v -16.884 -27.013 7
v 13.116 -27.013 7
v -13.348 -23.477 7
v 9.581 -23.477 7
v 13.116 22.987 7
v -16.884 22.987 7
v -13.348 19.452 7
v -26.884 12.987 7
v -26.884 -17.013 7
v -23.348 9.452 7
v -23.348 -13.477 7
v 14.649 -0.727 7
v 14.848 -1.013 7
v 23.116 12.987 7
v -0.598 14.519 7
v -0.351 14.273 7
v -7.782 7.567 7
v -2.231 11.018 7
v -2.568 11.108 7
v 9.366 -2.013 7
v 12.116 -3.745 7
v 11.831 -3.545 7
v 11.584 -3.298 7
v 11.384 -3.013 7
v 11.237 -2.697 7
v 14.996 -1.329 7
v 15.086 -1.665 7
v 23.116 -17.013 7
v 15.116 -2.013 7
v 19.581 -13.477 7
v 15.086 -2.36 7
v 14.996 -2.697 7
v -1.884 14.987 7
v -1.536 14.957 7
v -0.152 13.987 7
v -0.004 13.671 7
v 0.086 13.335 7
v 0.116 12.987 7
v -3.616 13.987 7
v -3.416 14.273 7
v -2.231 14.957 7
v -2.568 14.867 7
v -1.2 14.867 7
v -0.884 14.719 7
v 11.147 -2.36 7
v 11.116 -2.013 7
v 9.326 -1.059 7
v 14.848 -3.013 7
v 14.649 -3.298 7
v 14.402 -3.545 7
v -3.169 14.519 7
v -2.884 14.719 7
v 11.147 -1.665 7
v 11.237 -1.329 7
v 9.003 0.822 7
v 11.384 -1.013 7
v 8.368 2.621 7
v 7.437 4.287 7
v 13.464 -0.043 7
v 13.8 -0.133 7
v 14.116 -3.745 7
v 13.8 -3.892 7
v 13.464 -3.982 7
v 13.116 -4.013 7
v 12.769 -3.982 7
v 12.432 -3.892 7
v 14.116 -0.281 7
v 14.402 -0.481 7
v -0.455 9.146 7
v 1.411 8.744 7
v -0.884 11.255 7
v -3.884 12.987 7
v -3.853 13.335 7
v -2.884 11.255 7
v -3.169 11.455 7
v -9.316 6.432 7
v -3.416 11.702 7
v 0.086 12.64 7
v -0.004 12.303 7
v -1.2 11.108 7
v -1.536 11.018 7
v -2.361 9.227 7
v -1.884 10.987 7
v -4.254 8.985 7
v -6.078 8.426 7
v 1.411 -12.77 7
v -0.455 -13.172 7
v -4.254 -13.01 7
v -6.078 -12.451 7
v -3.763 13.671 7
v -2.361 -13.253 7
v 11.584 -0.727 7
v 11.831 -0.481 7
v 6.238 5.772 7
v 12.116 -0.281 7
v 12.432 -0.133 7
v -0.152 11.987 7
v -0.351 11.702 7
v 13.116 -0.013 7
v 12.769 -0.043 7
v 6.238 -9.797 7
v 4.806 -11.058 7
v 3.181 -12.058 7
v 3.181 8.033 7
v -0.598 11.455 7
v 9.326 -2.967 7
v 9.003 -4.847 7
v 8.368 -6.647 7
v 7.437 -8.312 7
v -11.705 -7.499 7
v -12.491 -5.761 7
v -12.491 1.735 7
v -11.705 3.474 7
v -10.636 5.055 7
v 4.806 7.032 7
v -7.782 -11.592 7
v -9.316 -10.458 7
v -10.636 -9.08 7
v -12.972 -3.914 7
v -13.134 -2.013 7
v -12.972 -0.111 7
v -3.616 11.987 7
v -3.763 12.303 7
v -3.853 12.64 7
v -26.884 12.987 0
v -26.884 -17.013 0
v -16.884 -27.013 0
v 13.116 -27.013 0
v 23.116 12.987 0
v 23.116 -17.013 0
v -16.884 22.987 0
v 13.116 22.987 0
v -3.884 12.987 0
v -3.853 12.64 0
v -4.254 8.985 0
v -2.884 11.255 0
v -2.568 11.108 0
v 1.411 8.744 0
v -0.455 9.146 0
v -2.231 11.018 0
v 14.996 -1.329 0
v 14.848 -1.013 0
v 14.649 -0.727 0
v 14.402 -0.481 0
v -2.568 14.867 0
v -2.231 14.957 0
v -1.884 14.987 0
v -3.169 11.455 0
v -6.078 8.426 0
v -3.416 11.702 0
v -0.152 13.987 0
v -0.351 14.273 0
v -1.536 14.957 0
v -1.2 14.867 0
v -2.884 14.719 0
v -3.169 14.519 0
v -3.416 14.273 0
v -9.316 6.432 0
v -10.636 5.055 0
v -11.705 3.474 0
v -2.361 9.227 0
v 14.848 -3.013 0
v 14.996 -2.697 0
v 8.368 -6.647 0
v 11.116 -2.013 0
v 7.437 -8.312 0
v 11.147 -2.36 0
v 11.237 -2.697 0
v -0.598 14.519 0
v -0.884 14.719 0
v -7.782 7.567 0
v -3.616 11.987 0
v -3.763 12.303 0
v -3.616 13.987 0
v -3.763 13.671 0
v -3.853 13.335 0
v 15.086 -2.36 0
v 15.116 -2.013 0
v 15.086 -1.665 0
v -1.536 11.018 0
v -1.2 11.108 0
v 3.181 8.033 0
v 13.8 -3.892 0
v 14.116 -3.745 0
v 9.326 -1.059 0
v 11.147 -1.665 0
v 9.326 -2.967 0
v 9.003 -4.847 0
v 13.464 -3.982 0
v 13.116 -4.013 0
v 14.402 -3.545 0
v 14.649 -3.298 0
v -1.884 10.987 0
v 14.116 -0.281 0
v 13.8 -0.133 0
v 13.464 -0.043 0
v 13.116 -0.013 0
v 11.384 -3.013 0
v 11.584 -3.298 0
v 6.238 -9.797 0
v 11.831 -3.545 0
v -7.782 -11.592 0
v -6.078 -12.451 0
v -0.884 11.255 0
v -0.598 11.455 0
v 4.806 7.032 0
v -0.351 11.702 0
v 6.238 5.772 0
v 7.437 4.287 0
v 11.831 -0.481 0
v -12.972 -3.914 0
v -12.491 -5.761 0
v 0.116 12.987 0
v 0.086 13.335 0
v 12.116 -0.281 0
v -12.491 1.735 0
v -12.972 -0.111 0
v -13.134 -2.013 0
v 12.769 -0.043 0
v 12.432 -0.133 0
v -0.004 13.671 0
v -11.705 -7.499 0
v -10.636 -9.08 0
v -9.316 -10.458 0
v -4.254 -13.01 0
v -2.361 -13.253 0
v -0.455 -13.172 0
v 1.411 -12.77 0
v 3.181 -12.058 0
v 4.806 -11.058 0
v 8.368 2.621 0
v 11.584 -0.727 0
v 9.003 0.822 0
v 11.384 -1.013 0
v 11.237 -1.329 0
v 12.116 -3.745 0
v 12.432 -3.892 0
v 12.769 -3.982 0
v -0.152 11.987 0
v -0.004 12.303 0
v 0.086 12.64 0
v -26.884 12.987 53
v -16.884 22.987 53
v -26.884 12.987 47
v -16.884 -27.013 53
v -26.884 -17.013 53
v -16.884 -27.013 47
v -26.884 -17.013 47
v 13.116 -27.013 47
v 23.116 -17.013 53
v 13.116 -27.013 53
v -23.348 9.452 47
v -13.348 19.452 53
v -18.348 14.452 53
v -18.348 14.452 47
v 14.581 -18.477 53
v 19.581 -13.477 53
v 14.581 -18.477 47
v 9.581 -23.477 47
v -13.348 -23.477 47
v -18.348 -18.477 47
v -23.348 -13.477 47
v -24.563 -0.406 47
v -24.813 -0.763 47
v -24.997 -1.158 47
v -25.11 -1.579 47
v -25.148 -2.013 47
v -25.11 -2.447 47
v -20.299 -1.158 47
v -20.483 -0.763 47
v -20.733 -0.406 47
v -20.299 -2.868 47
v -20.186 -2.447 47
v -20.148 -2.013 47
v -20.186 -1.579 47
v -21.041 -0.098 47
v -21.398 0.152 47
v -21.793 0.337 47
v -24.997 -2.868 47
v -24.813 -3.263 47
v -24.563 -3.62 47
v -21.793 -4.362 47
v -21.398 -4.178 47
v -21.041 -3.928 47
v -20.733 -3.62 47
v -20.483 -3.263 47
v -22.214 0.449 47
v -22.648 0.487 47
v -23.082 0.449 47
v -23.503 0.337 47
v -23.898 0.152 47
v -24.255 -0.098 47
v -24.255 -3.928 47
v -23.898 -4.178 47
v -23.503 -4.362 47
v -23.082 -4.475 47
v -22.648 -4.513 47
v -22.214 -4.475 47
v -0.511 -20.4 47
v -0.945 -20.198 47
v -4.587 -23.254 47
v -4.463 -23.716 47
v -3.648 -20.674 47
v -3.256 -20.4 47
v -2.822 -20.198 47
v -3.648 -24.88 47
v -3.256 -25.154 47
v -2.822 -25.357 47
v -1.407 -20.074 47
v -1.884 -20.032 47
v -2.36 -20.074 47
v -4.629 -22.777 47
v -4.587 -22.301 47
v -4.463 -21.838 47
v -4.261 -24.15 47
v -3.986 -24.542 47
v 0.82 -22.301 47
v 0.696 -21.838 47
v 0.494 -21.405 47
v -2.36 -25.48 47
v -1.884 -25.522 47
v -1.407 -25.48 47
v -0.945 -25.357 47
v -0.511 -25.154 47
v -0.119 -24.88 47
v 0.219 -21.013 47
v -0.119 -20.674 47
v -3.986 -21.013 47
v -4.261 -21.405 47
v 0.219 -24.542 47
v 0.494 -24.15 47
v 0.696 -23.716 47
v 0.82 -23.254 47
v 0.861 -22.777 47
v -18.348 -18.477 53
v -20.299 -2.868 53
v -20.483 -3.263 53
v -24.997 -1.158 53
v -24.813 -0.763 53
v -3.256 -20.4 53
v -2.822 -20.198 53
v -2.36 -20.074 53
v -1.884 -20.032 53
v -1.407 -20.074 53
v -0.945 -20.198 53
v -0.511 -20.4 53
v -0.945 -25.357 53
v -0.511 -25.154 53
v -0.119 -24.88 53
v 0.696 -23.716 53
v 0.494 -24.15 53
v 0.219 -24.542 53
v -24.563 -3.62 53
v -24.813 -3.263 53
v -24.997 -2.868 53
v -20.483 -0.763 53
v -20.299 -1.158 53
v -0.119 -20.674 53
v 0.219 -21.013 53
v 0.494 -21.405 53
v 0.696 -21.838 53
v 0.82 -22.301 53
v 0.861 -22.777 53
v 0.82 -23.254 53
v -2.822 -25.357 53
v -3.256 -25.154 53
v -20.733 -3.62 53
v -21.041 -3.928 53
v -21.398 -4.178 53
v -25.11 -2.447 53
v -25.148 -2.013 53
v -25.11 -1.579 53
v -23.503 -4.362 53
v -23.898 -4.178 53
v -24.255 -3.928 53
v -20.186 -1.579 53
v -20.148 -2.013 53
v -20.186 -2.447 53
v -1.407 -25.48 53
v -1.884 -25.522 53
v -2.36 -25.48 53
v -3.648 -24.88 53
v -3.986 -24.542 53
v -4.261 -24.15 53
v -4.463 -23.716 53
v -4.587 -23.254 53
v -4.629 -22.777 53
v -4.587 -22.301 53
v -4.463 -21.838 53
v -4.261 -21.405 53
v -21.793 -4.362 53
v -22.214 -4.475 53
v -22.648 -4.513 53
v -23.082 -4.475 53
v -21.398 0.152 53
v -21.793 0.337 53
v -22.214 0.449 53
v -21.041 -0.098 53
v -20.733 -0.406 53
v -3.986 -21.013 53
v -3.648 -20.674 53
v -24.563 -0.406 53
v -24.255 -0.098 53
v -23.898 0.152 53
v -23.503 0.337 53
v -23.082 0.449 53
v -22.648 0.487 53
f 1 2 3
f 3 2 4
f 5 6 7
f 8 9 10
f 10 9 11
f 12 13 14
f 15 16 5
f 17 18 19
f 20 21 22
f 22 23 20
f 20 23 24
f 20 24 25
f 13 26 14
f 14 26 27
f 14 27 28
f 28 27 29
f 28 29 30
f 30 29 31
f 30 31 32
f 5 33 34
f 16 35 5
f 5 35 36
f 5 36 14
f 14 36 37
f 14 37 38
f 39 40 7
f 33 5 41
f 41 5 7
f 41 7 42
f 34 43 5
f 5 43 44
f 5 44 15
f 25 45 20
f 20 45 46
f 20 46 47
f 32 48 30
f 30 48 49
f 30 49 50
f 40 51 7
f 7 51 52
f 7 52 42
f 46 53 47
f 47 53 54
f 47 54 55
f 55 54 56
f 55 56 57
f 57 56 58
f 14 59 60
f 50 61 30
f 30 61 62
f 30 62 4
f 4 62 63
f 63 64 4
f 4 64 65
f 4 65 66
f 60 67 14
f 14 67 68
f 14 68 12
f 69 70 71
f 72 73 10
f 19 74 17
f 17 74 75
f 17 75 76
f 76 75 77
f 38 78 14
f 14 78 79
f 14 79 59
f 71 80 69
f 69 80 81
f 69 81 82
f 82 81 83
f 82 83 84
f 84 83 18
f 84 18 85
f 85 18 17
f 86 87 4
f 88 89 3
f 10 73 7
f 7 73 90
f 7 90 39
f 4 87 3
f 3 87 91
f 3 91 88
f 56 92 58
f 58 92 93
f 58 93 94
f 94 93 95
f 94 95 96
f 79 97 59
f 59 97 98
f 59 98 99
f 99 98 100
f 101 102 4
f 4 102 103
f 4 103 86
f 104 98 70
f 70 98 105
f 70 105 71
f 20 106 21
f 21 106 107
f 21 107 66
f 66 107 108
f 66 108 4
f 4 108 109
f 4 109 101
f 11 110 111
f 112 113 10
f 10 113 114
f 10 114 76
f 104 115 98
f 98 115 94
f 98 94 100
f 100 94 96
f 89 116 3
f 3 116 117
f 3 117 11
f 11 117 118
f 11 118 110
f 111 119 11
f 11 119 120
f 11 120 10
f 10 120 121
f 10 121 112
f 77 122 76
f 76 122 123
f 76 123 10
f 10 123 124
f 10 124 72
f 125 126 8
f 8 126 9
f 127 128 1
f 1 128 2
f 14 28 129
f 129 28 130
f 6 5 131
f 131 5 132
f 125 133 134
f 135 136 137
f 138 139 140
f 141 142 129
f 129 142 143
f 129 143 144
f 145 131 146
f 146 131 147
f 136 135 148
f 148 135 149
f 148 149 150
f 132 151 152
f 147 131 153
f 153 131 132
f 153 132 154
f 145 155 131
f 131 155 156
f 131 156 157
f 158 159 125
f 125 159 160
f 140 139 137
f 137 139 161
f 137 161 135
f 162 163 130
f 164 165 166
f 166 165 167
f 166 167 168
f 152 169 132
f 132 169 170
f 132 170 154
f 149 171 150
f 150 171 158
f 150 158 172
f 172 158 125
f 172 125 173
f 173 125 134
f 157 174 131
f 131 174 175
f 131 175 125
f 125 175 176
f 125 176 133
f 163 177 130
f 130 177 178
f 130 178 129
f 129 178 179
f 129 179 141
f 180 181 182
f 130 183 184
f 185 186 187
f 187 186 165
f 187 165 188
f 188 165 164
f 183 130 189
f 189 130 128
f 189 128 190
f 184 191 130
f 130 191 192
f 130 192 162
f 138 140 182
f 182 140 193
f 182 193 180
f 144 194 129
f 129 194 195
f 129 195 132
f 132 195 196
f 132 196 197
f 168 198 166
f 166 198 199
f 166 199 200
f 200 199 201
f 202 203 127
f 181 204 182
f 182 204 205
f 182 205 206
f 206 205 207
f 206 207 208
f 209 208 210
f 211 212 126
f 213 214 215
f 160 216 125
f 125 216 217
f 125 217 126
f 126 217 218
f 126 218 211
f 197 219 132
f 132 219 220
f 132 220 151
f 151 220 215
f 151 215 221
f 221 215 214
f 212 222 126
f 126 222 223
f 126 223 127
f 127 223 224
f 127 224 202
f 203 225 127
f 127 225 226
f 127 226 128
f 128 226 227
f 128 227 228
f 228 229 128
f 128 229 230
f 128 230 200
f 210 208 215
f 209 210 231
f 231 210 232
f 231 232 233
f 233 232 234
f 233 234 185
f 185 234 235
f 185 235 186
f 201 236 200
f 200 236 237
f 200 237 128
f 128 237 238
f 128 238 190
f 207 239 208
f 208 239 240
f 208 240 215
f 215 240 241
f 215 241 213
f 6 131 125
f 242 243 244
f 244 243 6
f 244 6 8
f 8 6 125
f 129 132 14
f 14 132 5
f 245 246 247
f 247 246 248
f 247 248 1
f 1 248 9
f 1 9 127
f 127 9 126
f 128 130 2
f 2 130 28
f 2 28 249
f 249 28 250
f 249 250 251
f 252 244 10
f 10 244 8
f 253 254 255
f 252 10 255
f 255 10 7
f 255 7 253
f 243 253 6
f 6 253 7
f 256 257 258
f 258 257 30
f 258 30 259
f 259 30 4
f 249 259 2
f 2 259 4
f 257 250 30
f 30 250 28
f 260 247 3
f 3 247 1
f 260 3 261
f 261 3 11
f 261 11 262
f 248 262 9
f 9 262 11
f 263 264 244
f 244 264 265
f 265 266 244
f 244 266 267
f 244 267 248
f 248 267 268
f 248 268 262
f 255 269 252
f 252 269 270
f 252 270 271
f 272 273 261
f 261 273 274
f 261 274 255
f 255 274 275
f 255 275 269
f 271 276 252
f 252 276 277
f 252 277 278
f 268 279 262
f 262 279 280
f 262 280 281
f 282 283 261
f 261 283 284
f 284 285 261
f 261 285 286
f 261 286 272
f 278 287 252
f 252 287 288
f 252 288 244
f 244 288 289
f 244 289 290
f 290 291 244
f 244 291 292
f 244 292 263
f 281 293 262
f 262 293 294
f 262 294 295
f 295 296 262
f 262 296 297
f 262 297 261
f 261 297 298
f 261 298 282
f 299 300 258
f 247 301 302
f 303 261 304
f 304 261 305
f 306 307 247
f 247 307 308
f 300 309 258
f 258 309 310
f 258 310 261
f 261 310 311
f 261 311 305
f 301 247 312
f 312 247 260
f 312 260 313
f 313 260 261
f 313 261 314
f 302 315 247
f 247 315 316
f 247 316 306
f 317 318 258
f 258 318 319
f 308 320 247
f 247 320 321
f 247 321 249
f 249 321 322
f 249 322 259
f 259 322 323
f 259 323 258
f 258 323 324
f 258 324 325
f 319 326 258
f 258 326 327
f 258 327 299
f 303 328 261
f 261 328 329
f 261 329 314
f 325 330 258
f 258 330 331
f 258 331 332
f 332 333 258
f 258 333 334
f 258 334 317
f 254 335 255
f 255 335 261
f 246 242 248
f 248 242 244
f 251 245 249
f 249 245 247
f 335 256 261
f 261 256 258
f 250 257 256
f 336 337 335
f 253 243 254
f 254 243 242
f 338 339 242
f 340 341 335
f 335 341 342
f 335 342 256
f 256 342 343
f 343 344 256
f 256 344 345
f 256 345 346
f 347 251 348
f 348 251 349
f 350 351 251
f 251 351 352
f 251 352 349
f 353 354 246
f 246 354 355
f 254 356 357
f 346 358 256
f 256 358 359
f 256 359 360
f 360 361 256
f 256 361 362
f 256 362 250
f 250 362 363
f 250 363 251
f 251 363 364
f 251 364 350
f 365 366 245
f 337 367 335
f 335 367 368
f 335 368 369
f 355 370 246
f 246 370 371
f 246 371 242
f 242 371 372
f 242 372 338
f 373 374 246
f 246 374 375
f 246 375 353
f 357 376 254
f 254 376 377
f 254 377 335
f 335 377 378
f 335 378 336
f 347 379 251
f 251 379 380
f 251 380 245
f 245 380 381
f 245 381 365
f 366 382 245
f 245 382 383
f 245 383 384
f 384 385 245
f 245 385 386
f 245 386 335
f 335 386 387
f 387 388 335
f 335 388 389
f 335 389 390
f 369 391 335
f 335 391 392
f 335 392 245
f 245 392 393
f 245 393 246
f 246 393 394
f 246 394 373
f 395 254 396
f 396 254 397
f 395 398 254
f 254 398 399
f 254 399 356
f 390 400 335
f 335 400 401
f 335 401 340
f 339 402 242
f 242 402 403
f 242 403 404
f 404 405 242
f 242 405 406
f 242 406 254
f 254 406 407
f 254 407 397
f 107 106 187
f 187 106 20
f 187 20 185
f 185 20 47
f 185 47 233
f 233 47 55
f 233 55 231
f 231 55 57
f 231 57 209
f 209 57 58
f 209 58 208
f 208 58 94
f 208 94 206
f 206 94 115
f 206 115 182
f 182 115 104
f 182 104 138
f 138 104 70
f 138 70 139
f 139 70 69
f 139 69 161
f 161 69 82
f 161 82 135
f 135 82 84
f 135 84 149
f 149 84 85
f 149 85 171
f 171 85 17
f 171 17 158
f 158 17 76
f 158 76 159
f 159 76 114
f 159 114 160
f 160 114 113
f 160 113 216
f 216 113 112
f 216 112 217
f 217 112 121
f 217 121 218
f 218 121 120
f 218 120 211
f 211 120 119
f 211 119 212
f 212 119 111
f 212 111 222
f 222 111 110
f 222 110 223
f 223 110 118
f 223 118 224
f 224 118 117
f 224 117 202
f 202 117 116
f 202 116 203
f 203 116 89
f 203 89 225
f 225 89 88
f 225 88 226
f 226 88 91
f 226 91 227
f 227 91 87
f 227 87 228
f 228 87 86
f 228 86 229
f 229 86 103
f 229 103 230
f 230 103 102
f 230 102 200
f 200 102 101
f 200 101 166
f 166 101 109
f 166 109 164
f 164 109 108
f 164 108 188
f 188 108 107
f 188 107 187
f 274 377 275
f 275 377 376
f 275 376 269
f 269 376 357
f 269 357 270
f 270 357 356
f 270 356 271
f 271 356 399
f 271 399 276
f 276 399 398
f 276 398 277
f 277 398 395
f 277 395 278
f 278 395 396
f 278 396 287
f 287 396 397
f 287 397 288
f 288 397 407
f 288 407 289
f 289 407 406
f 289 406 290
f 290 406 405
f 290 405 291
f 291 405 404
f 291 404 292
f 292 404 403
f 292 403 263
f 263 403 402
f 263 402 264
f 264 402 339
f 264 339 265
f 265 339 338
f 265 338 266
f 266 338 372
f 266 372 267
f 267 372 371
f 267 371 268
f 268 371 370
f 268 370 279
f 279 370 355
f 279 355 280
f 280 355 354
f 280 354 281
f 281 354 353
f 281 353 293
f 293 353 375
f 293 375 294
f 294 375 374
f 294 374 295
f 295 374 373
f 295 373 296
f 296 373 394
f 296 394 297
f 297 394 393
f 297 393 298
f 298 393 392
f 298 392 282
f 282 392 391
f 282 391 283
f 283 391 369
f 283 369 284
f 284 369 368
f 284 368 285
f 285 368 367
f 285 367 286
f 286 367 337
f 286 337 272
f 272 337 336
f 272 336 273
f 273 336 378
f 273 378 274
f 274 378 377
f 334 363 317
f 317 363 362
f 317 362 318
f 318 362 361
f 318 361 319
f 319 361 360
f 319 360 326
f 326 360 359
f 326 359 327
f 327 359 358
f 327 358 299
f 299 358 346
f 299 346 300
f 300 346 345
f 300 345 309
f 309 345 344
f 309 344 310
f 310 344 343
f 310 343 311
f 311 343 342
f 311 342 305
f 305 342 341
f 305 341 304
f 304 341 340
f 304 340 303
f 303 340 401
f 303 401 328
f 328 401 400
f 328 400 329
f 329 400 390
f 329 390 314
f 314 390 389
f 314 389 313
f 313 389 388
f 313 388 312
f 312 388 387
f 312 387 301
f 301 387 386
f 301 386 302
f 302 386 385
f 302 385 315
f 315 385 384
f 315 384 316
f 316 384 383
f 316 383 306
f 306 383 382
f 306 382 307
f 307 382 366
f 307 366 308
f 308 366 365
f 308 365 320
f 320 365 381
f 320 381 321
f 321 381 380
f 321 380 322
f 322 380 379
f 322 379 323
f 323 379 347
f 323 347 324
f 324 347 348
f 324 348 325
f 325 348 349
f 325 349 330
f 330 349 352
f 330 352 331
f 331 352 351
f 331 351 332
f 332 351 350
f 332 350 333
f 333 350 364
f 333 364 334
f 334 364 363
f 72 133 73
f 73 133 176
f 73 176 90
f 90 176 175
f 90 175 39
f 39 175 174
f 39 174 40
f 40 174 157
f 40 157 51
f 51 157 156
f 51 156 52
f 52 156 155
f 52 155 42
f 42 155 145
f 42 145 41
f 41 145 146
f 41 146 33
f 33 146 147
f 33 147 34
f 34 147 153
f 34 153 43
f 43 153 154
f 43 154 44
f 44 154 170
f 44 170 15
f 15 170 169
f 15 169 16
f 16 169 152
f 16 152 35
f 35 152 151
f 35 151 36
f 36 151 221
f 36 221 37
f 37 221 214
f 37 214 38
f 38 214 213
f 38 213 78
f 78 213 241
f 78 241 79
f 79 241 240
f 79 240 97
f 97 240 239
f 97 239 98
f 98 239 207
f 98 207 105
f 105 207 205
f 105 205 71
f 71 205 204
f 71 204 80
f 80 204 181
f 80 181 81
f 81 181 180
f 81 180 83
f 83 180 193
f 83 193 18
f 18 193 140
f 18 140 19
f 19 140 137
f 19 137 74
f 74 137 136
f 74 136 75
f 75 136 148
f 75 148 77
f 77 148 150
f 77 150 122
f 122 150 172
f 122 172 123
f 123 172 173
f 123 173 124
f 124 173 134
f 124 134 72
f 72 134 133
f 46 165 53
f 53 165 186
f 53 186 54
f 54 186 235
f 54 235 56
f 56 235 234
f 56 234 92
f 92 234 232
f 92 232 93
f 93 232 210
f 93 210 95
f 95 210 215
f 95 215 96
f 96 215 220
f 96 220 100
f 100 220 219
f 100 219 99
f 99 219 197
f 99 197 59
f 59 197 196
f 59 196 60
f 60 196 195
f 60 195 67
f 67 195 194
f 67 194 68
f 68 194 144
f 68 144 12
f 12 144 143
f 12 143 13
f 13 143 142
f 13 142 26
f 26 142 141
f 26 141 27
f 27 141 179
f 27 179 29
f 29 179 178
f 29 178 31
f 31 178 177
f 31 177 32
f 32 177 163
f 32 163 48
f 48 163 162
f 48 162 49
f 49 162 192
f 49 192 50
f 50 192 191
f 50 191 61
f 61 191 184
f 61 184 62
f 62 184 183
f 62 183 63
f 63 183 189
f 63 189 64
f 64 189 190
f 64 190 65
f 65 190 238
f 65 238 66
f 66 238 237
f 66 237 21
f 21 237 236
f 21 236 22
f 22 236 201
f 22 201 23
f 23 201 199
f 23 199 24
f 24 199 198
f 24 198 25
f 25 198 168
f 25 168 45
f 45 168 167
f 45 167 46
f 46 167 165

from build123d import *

# Parameters (mm, degrees)
ESQUISSE1_W             = 50
ESQUISSE1_H             = 50
BOSS_EXTRU_1_DEPTH      = 7
CHANFREIN1_SIZE         = 10
BOSS_EXTRU_2_DEPTH      = 40
BOSS_EXTRU_3_DEPTH      = 6
ESQUISSE5_R             = 11.25
ENL_V_MAT_EXTRU_1_DEPTH = 7
ESQUISSE6_R             = 2.5
ESQUISSE6_R_2           = 2.745007664
ENL_V_MAT_EXTRU_2_DEPTH = 6
ESQUISSE7_R             = 2
ENL_V_MAT_EXTRU_3_DEPTH = 7


with BuildPart() as part:
    # Esquisse1 → Boss.-Extru.1 (new body)
    with BuildSketch(Plane.XY):
        with Locations((-1.883571087, -2.012711864)):
            Rectangle(ESQUISSE1_W, ESQUISSE1_H)
    extrude(amount=BOSS_EXTRU_1_DEPTH)

    # Chanfrein1
    chanfrein1_edges = [part.edges().sort_by_distance(p)[0] for p in [
        (-26.883571087, 22.987288136, 3.5),
        (23.116428913, 22.987288136, 3.5),
        (23.116428913, -27.012711864, 3.5),
        (-26.883571087, -27.012711864, 3.5),
    ]]
    chamfer(chanfrein1_edges, length=CHANFREIN1_SIZE)

    # Esquisse2 → Boss.-Extru.2 (add)
    with BuildSketch(Plane.XY.offset(7)):
        Polygon((-23.348037181, 9.45175423), (-26.883571087, 12.987288136), (-16.883571087, 22.987288136), (-13.348037181, 19.45175423), align=None)
        Polygon((19.580895007, -13.477177958), (9.580895007, -23.477177958), (13.116428913, -27.012711864), (23.116428913, -17.012711864), align=None)
        Polygon((-13.348037181, -23.477177958), (-23.348037181, -13.477177958), (-26.883571087, -17.012711864), (-16.883571087, -27.012711864), align=None)
    extrude(amount=BOSS_EXTRU_2_DEPTH)

    # Esquisse4 → Boss.-Extru.3 (add)
    with BuildSketch(Plane.XY.offset(47)):
        Polygon((-18.348037181, 14.45175423), (-13.348037181, 19.45175423), (-16.883571087, 22.987288136), (-26.883571087, 12.987288136), (-26.883571087, -17.012711864), (-16.883571087, -27.012711864), (13.116428913, -27.012711864), (23.116428913, -17.012711864), (19.580895007, -13.477177958), (14.580895007, -18.477177958), (-18.348037181, -18.477177958), align=None)
    extrude(amount=BOSS_EXTRU_3_DEPTH)

    # Esquisse5 → Enlèv. mat.-Extru.1 (cut)
    with BuildSketch(Plane(origin=(0, 0, 0), x_dir=(-1, 0, 0), z_dir=(0, 0, -1))):
        with Locations((1.883571087, -2.012711864)):
            Circle(ESQUISSE5_R)
    extrude(amount=-ENL_V_MAT_EXTRU_1_DEPTH, mode=Mode.SUBTRACT)

    # Esquisse6 → Enlèv. mat.-Extru.2 (cut)
    with BuildSketch(Plane.XY.offset(53)):
        with Locations((-22.648037181, -2.012711864)):
            Circle(ESQUISSE6_R)
        with Locations((-1.883571087, -22.777177958)):
            Circle(ESQUISSE6_R_2)
    extrude(amount=-ENL_V_MAT_EXTRU_2_DEPTH, mode=Mode.SUBTRACT)

    # Esquisse7 → Enlèv. mat.-Extru.3 (cut)
    with BuildSketch(Plane(origin=(0, 0, 0), x_dir=(-1, 0, 0), z_dir=(0, 0, -1))):
        with Locations((1.883571087, 12.987288136)):
            Circle(ESQUISSE7_R)
        with Locations((-13.116428913, -2.012711864)):
            Circle(ESQUISSE7_R)
    extrude(amount=-ENL_V_MAT_EXTRU_3_DEPTH, mode=Mode.SUBTRACT)


solid = part.part
